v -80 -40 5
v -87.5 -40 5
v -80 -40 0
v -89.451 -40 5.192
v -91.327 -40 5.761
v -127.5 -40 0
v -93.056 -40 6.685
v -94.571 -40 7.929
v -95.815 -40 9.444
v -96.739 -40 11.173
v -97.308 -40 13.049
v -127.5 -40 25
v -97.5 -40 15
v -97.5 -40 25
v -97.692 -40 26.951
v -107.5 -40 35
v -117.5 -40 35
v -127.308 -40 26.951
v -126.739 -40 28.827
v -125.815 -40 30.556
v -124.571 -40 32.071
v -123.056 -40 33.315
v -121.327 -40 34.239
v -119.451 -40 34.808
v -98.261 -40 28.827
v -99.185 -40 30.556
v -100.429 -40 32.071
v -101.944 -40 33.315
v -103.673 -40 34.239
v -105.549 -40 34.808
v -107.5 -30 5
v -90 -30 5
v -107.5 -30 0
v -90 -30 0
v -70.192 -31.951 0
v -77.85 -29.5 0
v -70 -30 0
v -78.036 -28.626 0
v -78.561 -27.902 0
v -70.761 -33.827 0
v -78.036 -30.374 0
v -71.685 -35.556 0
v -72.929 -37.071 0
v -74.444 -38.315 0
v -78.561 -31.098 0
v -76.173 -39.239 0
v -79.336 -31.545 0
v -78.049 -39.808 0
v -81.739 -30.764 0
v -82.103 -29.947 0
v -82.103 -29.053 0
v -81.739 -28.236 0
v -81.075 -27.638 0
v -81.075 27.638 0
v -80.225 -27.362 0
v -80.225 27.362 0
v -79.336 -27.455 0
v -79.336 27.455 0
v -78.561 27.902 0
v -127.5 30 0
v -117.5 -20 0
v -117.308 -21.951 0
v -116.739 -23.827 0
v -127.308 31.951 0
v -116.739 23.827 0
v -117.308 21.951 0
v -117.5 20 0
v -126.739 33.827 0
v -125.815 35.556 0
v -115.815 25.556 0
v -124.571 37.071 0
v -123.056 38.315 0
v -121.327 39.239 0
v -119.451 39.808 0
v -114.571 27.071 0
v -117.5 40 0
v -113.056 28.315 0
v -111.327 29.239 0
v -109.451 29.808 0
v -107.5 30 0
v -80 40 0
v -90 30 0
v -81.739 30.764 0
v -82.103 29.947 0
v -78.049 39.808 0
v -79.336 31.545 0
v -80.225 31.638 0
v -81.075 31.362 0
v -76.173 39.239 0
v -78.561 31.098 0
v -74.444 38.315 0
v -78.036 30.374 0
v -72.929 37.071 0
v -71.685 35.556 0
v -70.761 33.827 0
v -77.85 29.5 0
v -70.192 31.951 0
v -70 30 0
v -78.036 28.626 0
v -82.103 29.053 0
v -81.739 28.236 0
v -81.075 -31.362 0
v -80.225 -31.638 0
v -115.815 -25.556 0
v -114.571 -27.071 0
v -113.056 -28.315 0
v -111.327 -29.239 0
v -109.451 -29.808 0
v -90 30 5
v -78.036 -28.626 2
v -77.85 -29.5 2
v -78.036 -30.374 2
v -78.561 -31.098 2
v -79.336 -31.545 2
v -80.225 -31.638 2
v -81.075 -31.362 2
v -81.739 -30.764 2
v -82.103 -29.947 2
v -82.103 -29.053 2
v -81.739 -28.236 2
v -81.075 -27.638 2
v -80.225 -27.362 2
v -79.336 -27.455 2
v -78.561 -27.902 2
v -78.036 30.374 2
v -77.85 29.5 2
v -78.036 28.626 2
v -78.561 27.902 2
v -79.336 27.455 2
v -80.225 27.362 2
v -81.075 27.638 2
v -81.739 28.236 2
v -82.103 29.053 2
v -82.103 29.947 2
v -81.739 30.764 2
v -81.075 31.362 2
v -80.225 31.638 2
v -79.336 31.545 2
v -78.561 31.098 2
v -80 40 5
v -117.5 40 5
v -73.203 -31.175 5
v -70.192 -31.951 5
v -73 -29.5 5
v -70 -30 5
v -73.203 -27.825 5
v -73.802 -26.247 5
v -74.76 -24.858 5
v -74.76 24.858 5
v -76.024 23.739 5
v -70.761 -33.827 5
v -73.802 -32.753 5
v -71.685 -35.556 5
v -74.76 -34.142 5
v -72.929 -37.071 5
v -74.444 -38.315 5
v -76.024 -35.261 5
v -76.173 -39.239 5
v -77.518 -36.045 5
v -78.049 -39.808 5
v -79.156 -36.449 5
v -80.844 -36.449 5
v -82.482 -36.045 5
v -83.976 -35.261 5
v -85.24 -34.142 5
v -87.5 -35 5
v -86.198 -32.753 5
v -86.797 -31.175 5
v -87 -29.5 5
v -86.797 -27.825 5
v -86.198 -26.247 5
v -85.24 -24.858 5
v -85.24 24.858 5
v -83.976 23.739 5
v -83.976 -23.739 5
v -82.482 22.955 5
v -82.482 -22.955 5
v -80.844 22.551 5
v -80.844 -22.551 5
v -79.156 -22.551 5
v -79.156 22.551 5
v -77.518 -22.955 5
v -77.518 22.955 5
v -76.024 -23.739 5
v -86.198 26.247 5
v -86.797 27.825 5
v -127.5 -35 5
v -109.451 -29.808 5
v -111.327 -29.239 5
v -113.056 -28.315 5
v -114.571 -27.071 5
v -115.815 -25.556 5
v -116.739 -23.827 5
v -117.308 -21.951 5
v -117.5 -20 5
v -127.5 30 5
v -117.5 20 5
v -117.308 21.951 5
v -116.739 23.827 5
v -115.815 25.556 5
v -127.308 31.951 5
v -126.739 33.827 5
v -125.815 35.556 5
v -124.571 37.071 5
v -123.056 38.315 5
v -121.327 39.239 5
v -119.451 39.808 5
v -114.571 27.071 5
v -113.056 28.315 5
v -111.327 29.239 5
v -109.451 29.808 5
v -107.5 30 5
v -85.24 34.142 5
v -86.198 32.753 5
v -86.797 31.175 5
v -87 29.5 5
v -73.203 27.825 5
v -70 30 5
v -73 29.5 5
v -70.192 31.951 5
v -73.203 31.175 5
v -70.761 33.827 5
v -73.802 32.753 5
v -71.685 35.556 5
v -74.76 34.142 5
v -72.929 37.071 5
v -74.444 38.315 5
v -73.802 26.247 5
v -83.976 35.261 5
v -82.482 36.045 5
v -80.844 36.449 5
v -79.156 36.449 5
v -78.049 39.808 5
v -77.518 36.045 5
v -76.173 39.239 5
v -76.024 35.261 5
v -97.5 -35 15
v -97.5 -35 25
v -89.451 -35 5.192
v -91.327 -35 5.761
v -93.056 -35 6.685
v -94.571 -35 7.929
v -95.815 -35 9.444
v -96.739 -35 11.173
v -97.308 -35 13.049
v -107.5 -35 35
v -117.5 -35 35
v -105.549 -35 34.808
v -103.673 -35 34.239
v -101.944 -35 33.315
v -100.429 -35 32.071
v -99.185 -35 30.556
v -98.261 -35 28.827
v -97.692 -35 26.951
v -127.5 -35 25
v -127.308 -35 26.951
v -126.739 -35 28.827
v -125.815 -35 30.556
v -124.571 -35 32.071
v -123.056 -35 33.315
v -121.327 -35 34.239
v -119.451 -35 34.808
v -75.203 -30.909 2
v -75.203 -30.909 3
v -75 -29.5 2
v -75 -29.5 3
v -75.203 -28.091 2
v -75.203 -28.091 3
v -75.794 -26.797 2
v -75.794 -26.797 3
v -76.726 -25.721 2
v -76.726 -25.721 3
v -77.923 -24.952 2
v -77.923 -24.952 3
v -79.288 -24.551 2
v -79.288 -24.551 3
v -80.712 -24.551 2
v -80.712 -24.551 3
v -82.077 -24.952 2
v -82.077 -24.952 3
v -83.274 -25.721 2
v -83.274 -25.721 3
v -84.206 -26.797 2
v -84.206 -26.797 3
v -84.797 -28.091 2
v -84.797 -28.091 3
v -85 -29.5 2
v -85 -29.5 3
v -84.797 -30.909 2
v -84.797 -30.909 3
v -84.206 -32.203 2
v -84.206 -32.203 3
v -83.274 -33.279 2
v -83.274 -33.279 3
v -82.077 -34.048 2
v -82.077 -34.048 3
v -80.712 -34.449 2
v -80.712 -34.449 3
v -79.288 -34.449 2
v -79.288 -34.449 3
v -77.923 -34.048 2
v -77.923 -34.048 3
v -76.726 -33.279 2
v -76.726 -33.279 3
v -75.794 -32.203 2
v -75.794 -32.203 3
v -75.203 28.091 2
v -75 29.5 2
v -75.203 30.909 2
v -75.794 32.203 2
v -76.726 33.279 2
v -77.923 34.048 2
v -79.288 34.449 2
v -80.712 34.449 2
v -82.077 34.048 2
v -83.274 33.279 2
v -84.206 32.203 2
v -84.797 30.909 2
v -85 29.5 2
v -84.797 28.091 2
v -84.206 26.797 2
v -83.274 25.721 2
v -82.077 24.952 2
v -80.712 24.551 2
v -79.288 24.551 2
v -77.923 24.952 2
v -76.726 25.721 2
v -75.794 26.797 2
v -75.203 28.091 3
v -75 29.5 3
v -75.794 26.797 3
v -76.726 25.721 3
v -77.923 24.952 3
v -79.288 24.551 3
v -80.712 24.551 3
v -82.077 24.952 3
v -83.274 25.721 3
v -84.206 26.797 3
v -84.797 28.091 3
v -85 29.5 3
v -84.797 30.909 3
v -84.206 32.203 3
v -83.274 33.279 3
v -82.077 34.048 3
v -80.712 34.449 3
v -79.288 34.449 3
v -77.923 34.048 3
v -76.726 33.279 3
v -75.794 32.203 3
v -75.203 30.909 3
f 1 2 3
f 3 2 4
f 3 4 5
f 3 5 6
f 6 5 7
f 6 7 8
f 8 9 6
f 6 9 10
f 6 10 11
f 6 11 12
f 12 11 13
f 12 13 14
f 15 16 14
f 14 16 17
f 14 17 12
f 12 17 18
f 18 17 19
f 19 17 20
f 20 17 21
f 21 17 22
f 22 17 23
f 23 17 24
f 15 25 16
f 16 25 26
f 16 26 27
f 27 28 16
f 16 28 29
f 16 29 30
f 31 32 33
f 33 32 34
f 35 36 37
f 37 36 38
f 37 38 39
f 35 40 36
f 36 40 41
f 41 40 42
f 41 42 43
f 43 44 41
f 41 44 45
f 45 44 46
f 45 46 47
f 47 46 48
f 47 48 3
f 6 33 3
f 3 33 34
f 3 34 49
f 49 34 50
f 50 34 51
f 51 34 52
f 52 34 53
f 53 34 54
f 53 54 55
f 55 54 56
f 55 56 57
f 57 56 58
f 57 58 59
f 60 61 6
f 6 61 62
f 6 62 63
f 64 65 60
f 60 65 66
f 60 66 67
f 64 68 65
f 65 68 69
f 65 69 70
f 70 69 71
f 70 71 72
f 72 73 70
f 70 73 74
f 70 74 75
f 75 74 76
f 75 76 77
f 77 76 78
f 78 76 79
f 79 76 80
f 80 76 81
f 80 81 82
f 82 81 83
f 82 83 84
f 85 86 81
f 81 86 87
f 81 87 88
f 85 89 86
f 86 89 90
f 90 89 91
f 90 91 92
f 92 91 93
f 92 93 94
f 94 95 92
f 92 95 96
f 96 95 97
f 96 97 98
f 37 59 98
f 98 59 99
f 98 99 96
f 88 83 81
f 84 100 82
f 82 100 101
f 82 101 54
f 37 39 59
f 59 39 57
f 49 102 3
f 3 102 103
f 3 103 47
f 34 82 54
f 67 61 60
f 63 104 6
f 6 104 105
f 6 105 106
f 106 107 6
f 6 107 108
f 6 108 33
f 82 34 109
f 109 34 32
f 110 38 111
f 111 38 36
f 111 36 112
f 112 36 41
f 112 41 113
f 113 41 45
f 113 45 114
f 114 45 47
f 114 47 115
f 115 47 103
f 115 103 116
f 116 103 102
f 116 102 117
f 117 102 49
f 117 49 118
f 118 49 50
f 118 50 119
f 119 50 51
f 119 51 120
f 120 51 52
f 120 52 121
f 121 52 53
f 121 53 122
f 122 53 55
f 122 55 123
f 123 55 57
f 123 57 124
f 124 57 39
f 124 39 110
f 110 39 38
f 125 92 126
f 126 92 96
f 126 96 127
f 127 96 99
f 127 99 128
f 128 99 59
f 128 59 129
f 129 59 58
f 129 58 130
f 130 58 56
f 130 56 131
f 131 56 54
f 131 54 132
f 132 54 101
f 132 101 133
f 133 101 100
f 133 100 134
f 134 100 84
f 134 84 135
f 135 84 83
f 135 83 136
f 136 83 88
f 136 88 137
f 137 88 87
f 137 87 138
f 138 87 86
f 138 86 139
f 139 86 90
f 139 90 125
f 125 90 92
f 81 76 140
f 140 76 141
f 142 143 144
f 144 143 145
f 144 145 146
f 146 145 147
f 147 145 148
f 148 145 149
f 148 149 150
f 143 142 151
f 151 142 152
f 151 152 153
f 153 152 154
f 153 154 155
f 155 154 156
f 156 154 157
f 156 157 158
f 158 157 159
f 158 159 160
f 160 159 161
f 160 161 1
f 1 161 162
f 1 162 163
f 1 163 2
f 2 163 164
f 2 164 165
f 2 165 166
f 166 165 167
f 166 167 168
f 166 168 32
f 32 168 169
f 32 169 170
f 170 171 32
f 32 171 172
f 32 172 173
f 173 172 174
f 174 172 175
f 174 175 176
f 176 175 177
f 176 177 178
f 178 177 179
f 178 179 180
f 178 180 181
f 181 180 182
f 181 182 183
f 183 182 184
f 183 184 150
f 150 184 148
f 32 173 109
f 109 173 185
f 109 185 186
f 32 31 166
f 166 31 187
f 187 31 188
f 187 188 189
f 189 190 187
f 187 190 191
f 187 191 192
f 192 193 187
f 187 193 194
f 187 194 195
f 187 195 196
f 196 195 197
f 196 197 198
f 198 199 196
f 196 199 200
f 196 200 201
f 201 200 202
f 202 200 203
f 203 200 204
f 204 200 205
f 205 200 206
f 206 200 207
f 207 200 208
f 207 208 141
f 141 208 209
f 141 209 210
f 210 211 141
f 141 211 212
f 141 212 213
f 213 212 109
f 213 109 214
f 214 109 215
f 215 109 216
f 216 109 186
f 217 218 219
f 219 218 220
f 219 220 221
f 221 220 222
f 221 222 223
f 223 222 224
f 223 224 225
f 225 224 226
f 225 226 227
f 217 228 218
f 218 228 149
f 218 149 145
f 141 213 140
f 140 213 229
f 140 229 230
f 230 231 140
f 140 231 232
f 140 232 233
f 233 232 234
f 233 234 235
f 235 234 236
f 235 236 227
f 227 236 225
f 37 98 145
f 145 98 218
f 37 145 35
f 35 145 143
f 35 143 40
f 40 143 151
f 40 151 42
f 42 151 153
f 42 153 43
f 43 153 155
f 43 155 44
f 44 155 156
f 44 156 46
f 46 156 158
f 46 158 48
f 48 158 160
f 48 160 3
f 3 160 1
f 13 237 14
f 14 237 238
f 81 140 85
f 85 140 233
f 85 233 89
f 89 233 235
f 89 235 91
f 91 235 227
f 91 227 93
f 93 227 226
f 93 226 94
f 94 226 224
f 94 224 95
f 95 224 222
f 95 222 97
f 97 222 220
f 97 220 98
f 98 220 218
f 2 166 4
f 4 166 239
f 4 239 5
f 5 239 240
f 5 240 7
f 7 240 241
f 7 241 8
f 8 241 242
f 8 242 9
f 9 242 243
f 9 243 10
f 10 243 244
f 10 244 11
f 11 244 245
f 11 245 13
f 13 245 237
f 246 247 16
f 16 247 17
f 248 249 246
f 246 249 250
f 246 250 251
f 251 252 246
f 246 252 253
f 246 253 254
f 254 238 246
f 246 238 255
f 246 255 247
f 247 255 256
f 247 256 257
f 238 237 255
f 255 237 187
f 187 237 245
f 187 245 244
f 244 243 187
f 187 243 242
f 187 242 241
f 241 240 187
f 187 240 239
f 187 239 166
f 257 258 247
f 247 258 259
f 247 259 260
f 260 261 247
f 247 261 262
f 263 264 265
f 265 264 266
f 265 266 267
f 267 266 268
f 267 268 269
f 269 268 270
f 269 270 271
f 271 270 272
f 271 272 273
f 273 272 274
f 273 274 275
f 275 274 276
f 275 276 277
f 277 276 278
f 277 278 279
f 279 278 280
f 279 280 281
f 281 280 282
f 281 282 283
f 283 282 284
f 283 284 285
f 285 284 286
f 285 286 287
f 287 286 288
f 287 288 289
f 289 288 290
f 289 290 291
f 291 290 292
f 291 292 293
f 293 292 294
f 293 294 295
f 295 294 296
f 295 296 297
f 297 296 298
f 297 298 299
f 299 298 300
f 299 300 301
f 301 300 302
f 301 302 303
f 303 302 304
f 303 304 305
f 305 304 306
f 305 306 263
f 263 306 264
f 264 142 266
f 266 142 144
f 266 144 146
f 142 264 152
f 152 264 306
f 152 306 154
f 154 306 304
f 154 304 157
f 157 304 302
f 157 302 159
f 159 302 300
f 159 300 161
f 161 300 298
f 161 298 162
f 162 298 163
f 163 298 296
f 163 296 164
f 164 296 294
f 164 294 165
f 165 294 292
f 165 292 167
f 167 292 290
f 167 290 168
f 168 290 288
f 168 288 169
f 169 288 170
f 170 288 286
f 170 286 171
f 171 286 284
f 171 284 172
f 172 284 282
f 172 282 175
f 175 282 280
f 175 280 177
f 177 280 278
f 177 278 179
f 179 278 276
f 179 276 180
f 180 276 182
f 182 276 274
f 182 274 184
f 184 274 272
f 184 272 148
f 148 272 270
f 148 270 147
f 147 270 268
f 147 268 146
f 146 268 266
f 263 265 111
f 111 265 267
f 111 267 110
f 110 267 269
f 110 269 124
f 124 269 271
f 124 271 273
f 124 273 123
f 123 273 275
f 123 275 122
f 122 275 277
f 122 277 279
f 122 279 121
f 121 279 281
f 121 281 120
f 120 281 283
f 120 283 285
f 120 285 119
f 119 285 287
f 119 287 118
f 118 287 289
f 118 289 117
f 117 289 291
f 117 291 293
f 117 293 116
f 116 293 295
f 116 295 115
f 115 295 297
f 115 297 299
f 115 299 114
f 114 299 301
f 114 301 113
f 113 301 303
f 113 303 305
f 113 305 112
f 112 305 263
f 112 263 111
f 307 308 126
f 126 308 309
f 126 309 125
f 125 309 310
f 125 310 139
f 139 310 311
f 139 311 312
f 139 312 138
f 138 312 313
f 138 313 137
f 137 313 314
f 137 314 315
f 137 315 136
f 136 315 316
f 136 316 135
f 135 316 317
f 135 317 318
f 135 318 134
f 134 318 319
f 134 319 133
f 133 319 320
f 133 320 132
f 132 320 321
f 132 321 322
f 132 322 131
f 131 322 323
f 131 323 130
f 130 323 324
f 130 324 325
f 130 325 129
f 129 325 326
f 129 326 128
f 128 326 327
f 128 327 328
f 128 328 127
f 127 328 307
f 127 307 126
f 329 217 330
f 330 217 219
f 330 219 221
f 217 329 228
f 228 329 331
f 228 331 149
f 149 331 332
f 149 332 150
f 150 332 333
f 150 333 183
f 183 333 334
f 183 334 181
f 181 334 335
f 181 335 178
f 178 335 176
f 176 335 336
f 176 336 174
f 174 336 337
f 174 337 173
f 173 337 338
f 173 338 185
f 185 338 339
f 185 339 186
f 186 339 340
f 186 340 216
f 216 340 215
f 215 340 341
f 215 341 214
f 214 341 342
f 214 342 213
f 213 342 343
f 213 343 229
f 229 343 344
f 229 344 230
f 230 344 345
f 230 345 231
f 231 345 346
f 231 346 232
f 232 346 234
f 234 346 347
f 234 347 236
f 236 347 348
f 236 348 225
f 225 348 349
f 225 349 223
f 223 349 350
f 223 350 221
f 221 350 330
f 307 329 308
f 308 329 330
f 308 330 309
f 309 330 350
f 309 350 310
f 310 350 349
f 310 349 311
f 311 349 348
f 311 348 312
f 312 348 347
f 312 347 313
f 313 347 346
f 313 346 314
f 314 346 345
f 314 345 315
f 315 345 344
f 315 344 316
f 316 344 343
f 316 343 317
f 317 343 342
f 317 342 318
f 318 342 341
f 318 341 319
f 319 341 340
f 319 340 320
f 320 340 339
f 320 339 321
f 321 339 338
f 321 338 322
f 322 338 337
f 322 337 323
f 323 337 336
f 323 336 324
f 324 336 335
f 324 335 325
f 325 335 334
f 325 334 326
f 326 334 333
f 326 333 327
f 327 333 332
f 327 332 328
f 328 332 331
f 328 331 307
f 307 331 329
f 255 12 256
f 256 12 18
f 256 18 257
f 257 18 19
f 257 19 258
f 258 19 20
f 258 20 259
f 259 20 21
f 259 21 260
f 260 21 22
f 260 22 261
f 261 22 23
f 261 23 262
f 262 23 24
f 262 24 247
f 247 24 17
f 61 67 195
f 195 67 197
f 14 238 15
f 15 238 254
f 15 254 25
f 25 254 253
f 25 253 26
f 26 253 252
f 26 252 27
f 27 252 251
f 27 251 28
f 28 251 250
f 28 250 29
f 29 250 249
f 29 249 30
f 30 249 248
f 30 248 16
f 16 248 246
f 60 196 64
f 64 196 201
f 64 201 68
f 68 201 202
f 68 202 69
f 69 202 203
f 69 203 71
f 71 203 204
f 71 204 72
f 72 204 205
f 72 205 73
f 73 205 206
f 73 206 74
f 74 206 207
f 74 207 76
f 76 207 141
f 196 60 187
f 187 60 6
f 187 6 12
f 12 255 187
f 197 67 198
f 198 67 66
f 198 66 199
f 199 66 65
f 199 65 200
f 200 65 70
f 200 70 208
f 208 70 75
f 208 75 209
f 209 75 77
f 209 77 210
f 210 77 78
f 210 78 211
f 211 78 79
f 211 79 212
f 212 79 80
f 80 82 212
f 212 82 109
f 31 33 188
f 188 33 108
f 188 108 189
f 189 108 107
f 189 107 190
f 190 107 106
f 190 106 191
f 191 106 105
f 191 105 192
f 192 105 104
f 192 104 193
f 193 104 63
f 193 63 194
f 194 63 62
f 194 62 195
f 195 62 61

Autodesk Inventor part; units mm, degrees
ref_plane "YZ Plane" through (0, 0, 0) normal (1, 0, 0) x (0, 1, 0)
ref_plane "XZ Plane" through (0, 0, 0) normal (0, 1, 0) x (-1, 0, 0)
ref_plane "XY Plane" through (0, 0, 0) normal (0, 0, 1) x (1, 0, 0)
ref_plane "Work Plane1" through (0, 0, 0) normal (0, 0, 1) x (1, 0, 0)
sketch "Sketch1" plane through (0, 0, 0) normal (0, 0, 1) x (1, 0, 0)
  circle A0 centre (-80, 29.5) radius 2.15 projected
  circle A1 centre (-80, -29.5) radius 2.15 projected
  line L0 (-127.5, 40) -> (-70, 40)
  line L1 (-70, 40) -> (-70, -40)
  line L2 (-70, -40) -> (-127.5, -40)
  line L3 (-127.5, -40) -> (-127.5, 40)
  line L4 (87.5, 40) -> (-87.5, 40) projected
  line L5 (-87.5, -40) -> (87.5, -40) projected
  line L6 (-97.5, 30) -> (-97.5, -30) projected
  line L7 (-117.5, 30) -> (-90, 30)
  line L8 (-90, 30) -> (-90, -30)
  line L9 (-90, -30) -> (-117.5, -30)
  line L10 (-117.5, -30) -> (-117.5, 30)
  point P0 (0, 0)
  point P1 (-117.5, 0)
  point P2 (-127.5, 0)
  dimension "d0" = 10
  dimension "d1" = 30
  dimension "d2" = 10
  dimension "d3" = 10
  dimension "d4" = 10
extrude "Extrusion1" add sketch "Sketch1" along normal blind 5
sketch "Sketch2" plane through (0, 0, 5) normal (0, 0, 1) x (1, 0, 0)
  line L0 (-127.5, -40) -> (-70, -40) projected
  line L1 (-127.5, -40) -> (-97.5, -40)
  line L2 (-97.5, -40) -> (-97.5, -35)
  line L3 (-97.5, -35) -> (-127.5, -35)
  line L4 (-127.5, -35) -> (-127.5, -40)
  line L5 (-97.5, 30) -> (-97.5, -30) projected
  point P0 (0, 0)
  dimension "d7" = 5
  dimension "d8" = 30
extrude "Extrusion2" add sketch "Sketch2" along normal blind 30
sketch "Sketch3" plane through (0, 0, 5) normal (0, 0, 1) x (1, 0, 0)
  circle A0 centre (-80, 29.5) radius 2.15 projected
  circle A1 centre (-80, 29.5) radius 5
  circle A2 centre (-80, -29.5) radius 2.15 projected
  circle A3 centre (-80, -29.5) radius 5
  point P0 (0, 0)
  dimension "d11" = 10
  dimension "d12" = 10
extrude "Extrusion3" cut sketch "Sketch3" against normal blind 3
chamfer "Chamfer1" distance 2 angle 45 2 edges at (-85, 29.5, 5) (-85, -29.5, 5)
fillet "Fillet1" radius 10 3 edges at (-127.5, -37.5, 35) (-97.5, -37.5, 35) (-97.5, -37.5, 5)
fillet "Fillet2" radius 10 5 edges at (-127.5, 40, 2.5) (-117.5, 30, 2.5) (-117.5, -30, 2.5) (-70, 40, 2.5) (-70, -40, 2.5)
properties part number "led 7 seg v3_stand"
